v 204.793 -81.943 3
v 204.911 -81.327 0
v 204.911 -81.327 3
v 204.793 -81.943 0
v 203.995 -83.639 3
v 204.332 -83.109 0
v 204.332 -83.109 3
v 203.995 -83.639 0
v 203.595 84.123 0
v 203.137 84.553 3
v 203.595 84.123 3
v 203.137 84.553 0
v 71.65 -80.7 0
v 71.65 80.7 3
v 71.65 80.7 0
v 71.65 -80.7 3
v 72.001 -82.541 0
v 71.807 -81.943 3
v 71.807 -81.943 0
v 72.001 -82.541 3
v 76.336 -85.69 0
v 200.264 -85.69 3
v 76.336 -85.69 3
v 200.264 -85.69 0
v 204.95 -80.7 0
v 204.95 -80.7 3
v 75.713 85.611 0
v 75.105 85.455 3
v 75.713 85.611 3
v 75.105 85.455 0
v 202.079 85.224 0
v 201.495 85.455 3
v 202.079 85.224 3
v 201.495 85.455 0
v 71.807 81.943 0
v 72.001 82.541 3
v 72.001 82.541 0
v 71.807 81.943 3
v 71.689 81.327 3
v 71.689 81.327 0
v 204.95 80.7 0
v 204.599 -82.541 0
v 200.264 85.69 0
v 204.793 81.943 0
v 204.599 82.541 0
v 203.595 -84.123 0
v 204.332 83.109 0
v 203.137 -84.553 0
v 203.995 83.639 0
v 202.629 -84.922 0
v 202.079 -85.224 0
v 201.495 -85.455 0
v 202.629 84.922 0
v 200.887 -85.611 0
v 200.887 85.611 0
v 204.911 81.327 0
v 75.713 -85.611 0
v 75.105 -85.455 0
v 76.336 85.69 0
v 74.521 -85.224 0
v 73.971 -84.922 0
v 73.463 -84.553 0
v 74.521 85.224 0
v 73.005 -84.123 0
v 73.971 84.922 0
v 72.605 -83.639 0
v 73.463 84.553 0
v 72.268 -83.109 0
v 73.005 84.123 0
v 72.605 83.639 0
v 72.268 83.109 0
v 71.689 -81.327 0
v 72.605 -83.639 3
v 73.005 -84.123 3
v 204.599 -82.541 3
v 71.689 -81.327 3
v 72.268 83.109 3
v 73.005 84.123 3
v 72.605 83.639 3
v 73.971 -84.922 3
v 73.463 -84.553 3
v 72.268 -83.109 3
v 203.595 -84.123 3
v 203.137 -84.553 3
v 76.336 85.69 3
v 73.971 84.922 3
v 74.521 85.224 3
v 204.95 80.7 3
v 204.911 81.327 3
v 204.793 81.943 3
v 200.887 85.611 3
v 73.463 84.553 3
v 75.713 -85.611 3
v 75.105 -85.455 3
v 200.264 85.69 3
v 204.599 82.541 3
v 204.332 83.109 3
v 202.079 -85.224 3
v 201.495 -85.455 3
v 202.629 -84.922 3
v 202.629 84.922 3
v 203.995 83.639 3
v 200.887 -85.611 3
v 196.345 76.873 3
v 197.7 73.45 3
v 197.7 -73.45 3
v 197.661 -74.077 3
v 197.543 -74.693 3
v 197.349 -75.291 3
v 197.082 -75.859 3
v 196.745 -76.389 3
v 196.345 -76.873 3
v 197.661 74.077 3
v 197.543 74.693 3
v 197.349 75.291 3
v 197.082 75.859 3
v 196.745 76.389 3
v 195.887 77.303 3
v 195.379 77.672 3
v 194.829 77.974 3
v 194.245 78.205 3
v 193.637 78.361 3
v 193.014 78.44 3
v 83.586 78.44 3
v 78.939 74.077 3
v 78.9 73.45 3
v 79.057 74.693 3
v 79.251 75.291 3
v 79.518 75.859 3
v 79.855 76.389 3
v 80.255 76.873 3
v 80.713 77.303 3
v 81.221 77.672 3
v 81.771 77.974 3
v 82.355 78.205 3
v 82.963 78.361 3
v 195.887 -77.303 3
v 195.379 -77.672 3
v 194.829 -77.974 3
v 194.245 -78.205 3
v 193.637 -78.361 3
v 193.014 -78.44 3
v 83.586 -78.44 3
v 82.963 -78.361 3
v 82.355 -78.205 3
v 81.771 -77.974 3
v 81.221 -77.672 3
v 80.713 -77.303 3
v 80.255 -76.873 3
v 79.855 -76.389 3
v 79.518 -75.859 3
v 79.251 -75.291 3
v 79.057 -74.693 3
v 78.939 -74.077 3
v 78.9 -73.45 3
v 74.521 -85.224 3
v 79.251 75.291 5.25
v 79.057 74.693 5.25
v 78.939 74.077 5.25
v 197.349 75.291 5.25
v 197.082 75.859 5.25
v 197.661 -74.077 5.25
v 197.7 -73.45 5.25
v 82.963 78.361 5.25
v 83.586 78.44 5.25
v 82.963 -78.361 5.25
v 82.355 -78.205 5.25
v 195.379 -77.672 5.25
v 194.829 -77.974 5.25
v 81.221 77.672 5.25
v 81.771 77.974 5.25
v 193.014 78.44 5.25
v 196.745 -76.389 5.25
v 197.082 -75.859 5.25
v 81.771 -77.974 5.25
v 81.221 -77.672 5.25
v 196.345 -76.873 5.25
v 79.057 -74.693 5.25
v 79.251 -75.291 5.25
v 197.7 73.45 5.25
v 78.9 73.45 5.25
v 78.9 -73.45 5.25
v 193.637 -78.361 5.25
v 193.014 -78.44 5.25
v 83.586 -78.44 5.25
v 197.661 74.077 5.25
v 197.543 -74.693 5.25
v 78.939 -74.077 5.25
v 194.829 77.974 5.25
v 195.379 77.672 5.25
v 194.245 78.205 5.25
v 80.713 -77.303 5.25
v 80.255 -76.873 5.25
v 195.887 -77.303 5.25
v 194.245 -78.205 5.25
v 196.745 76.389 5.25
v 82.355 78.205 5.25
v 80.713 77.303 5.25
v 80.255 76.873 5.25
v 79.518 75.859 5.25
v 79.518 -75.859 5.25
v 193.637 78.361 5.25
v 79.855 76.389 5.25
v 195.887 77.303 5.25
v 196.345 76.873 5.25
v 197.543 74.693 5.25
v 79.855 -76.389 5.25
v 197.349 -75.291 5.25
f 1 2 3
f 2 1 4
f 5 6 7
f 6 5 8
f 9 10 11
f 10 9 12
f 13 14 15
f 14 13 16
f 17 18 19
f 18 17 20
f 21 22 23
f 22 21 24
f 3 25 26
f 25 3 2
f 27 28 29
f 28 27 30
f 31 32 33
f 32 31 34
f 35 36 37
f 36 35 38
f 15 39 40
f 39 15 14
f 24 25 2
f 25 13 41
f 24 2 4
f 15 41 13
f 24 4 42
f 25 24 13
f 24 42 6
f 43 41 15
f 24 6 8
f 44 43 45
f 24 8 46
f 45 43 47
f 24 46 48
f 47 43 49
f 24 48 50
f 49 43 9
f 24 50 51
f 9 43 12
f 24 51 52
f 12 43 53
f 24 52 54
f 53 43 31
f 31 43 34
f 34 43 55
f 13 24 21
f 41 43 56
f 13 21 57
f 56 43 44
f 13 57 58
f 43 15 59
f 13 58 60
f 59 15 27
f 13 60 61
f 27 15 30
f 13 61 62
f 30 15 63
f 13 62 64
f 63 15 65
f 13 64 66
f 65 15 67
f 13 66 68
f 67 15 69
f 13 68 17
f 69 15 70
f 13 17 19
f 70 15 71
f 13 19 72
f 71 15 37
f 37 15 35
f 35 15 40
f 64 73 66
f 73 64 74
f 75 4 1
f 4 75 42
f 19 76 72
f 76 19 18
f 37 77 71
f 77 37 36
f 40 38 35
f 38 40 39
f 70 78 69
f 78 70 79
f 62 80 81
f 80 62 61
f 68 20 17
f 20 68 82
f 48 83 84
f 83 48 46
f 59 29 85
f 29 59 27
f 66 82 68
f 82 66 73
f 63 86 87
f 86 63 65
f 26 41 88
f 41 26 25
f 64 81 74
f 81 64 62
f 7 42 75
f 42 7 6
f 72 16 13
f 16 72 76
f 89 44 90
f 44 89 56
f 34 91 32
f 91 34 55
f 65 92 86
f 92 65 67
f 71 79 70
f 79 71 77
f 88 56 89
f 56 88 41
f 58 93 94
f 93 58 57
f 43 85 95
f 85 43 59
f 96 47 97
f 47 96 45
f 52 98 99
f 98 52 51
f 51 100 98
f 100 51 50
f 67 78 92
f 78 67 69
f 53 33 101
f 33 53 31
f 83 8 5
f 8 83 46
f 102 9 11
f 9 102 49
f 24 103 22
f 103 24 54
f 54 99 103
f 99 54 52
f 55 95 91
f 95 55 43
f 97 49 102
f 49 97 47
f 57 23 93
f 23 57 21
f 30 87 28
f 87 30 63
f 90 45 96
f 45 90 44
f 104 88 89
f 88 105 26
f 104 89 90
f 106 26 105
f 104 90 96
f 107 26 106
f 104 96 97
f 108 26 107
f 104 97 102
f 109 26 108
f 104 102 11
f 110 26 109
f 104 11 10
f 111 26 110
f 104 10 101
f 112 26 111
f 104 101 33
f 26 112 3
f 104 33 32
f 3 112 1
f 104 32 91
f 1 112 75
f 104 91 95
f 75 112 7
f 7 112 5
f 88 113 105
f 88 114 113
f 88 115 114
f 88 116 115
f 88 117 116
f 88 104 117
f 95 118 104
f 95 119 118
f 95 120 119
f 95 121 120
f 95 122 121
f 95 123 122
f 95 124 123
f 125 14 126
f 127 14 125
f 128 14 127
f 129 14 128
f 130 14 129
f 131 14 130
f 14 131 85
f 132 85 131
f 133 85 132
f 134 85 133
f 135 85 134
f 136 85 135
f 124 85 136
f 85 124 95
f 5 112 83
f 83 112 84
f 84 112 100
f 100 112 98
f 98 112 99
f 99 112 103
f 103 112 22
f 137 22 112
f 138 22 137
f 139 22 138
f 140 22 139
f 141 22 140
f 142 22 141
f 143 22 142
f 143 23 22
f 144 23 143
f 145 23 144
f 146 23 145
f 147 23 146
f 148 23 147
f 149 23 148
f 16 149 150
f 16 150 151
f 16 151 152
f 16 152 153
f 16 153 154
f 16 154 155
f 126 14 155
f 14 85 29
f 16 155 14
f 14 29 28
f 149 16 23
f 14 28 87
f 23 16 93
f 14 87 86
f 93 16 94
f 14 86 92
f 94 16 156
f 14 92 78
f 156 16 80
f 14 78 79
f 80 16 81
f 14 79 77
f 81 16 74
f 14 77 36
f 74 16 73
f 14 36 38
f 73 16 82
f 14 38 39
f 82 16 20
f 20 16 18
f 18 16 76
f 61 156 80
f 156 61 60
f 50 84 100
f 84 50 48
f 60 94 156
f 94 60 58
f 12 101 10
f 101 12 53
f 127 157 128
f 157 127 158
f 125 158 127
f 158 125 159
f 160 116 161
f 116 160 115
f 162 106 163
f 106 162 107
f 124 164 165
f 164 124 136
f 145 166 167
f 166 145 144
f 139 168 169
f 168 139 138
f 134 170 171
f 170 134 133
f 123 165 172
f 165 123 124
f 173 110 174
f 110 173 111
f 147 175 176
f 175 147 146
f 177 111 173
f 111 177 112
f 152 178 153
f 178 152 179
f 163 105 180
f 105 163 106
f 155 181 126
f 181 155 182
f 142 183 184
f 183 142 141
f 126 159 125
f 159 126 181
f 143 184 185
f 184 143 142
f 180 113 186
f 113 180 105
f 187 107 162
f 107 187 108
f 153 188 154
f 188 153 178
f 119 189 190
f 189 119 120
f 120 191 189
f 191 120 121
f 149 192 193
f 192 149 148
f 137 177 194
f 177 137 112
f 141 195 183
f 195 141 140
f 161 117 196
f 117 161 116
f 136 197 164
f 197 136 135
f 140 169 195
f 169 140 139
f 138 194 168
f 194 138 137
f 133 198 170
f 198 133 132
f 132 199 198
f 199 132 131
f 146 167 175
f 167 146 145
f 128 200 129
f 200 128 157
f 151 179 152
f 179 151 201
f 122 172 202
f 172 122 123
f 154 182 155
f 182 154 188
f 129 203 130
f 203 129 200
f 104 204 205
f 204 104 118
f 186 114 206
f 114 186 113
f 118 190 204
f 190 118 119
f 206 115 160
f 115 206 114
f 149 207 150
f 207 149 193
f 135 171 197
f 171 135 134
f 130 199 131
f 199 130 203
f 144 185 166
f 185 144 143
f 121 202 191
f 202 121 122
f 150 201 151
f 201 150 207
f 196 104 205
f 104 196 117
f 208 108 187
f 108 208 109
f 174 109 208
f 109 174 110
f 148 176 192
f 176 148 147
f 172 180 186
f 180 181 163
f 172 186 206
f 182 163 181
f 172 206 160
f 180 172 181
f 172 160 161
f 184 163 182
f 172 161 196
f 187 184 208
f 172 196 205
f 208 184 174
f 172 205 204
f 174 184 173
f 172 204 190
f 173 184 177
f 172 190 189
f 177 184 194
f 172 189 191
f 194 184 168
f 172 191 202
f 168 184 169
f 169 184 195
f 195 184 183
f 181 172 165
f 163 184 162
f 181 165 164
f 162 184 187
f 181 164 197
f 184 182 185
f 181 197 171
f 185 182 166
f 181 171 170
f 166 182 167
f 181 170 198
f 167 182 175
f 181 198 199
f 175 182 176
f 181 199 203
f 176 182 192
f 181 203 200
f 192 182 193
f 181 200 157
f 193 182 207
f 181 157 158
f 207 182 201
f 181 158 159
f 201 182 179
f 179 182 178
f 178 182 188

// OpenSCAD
print_lid = 1;
print_box = 0;

CM=25.4;
inside_width  = (4+1/2) * CM;    //x dimension
inside_length = 6 *CM;    //y dimension
inside_heigth = 1/2 *CM;    //z dimension
corner_radius = 5;      // radius of box corners
wall_thickness = 4;     // total thickness of any wall

//outside dimensions of the box
outside_width  = inside_width + corner_radius + wall_thickness;    //x dimension
outside_length = inside_length + corner_radius + wall_thickness;    //y dimension
outside_heigth = 30;    //z dimension
$fn=50;

//additional parameters

post_diameter = 10;     // internal post for screws
hole_diameter = 3;      // size of screws for lid (0=no screws)
lid_thickness= 3;       // comment out if no lid required
lid_lip = 2;            // 0 makes lid flush to top
lid_tolerance = .5;     // shrink lid so not squeaky fit

fn=50;

// make 4 "posts" about 0,0,0 offset by +/-x +/-y 
module posts(x,y,z,h,r)
{
    translate([x,y,z]){         // move post to this location
        cylinder(r = r, h = h); // make one post
    }
    translate([-x,y,z]){        // move post to this location
        cylinder(r = r, h = h); // make one post
    }   
    translate([-x,-y,z]){       // move post to this location
        cylinder(r = r, h = h); // make one post
    }
    translate([x,-y,z]){        // move post to this location
        cylinder(r = r, h = h); // make one post
    }    
}

if (print_box)
{
difference() { // make 2 boxes one inside the other and remove "inside box" from "outside box"
    // use posts to define OUTSIDE of a solid box centered on 0,0
    hull(){
        posts(  
            x=(outside_width/2  ),
            y=(outside_length/2 ),
            z= 0,
            h= outside_heigth,
            r = corner_radius);
    }
        
    // use posts to define INSIDE of a solid box centered on 0,0
    hull(){
        posts(
            x=(outside_width/2  - corner_radius - wall_thickness/2),
            y=(outside_length/2 - corner_radius - wall_thickness/2),
            z= wall_thickness, // move up to create bottom
            h= outside_heigth,
            r = corner_radius);
    }
/*
    // now we have a simple hollow box.
    // use posts to define a LIP inside the wall 
    hull(){
        posts(
            x=(outside_width/2  - corner_radius - lid_lip),
            y=(outside_length/2 - corner_radius - lid_lip),
            z= outside_heigth - lid_thickness,
            h= lid_thickness + 1,
            r = corner_radius);
    }
*/    
}
}

if (print_lid)
{
// create a lid
translate([15 + outside_width, 0, 0]) 
union()
{
    hull(){
        posts(  
            x=(outside_width/2 ),
            y=(outside_length/2 ),
            z= 0,
            h= lid_thickness,
            r = corner_radius);
    }
    color("RED")
    translate ([0, 0, lid_thickness * 3/4])
    hull()
    {
            posts(
                x=(outside_width/2  - corner_radius - wall_thickness/2 -lid_tolerance/2),
                y=(outside_length/2 - corner_radius - wall_thickness/2 -lid_tolerance/2),
                z= 0, // move up to create bottom
                h= lid_thickness,
                r = corner_radius);
            
    }

}
}
